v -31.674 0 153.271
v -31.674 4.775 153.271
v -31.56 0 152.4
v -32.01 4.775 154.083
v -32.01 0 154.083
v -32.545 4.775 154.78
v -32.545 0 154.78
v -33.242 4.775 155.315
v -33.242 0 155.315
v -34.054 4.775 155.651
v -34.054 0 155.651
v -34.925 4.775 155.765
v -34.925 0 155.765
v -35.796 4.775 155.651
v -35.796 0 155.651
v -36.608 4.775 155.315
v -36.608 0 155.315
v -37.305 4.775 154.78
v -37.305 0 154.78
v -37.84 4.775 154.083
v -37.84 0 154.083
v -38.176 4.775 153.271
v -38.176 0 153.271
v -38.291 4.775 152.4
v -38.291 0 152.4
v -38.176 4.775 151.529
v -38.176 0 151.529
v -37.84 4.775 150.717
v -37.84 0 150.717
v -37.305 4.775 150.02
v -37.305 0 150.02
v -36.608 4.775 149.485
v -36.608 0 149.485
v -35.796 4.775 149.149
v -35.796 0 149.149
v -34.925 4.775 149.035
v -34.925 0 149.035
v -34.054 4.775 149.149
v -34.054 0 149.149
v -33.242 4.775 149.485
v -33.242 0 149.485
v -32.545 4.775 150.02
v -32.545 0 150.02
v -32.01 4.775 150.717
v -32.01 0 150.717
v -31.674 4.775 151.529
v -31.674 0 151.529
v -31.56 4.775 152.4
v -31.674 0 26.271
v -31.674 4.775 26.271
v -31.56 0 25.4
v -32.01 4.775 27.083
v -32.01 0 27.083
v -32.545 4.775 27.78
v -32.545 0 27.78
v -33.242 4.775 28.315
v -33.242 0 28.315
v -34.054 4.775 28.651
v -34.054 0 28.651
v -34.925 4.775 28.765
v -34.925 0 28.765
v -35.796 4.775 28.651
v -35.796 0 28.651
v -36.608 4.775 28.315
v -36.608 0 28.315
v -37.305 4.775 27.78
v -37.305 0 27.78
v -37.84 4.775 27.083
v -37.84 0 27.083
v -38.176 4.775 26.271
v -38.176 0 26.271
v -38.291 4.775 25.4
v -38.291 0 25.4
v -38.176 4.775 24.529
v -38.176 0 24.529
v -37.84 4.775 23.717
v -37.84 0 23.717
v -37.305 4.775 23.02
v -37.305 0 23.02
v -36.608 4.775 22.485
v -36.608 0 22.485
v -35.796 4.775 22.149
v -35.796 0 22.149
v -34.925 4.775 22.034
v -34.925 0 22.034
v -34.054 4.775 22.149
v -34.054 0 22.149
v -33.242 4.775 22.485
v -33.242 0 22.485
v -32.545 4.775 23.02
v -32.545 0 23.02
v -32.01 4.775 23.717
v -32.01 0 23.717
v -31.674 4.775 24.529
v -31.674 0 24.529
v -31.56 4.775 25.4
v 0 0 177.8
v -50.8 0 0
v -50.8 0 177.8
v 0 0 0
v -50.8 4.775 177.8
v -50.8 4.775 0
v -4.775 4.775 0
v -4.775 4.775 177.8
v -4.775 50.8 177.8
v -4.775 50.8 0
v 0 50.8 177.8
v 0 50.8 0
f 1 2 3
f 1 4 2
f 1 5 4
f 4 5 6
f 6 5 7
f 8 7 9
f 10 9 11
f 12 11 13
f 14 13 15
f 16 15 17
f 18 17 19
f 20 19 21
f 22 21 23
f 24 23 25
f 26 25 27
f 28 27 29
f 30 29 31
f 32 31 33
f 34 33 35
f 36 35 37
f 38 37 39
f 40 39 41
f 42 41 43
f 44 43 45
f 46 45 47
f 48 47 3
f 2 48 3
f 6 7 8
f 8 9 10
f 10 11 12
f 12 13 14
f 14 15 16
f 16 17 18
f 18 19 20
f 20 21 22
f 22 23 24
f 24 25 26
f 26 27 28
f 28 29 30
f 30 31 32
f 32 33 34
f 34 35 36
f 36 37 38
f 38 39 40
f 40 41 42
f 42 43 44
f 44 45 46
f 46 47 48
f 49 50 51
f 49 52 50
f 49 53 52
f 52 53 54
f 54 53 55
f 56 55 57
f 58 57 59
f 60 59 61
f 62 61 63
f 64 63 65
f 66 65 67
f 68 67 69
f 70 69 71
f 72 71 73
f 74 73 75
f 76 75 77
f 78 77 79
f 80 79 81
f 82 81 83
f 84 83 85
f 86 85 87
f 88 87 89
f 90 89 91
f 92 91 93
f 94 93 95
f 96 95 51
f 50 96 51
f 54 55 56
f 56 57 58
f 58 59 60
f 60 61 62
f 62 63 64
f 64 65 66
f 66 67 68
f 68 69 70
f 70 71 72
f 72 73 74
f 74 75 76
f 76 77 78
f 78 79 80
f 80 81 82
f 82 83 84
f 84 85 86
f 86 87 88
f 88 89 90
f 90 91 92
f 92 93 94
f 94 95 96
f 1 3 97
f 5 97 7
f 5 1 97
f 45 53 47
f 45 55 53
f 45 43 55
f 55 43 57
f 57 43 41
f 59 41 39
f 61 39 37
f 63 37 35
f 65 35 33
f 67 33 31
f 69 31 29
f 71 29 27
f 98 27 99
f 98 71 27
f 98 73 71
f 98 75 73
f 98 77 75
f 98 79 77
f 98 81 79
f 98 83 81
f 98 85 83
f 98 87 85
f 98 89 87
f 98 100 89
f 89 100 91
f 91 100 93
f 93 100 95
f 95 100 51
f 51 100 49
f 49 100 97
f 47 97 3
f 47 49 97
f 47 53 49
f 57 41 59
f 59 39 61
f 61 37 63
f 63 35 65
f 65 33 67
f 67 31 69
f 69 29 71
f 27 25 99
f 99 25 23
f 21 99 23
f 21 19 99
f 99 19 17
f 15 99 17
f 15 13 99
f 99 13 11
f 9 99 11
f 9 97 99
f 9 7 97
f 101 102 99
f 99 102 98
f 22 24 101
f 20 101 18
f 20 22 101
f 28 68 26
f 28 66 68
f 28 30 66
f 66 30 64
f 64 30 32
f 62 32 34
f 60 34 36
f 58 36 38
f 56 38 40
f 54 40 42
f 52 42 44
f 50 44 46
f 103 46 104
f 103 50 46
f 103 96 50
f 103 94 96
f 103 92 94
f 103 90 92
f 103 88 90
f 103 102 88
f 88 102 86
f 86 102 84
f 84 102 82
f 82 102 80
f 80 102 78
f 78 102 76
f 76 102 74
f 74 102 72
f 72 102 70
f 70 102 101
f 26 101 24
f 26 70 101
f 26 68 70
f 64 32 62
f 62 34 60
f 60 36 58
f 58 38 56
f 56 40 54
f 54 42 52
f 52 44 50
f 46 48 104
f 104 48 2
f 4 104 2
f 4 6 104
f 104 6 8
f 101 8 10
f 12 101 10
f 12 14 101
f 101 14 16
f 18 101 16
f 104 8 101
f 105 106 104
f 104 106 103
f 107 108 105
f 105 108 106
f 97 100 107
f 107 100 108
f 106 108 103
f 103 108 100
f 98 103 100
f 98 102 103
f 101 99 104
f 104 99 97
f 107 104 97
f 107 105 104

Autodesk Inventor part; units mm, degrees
ref_plane "YZ Plane" through (0, 0, 0) normal (1, 0, 0) x (0, 1, 0)
ref_plane "XZ Plane" through (0, 0, 0) normal (0, 1, 0) x (-1, 0, 0)
ref_plane "XY Plane" through (0, 0, 0) normal (0, 0, 1) x (1, 0, 0)
sketch "Sketch1" plane through (0, 0, 0) normal (0, 0, 1) x (1, 0, 0)
  line L0 (0, 50.8) -> (0, 0)
  line L1 (0, 0) -> (-50.8, 0)
  line L2 (-50.8, 0) -> (-50.8, 4.7752)
  line L3 (-50.8, 4.7752) -> (-4.7752, 4.7752)
  line L4 (-4.7752, 4.7752) -> (-4.7752, 50.8)
  line L5 (-4.7752, 50.8) -> (0, 50.8)
  dimension "d0" = 50.8
  dimension "d1" = 4.7752
extrude "Extrusion1" add sketch "Sketch1" along normal blind 177.8
hole "Hole1" at (-34.925, 4.7752, 25.4) direction (0, -1, 0) diameter 6.731 depth 25.4 tip angle 118
hole "Hole2" at (-34.925, 4.7752, 152.4) direction (0, -1, 0) diameter 6.731 depth 25.4 tip angle 118
properties part number "GE-12016-07"
